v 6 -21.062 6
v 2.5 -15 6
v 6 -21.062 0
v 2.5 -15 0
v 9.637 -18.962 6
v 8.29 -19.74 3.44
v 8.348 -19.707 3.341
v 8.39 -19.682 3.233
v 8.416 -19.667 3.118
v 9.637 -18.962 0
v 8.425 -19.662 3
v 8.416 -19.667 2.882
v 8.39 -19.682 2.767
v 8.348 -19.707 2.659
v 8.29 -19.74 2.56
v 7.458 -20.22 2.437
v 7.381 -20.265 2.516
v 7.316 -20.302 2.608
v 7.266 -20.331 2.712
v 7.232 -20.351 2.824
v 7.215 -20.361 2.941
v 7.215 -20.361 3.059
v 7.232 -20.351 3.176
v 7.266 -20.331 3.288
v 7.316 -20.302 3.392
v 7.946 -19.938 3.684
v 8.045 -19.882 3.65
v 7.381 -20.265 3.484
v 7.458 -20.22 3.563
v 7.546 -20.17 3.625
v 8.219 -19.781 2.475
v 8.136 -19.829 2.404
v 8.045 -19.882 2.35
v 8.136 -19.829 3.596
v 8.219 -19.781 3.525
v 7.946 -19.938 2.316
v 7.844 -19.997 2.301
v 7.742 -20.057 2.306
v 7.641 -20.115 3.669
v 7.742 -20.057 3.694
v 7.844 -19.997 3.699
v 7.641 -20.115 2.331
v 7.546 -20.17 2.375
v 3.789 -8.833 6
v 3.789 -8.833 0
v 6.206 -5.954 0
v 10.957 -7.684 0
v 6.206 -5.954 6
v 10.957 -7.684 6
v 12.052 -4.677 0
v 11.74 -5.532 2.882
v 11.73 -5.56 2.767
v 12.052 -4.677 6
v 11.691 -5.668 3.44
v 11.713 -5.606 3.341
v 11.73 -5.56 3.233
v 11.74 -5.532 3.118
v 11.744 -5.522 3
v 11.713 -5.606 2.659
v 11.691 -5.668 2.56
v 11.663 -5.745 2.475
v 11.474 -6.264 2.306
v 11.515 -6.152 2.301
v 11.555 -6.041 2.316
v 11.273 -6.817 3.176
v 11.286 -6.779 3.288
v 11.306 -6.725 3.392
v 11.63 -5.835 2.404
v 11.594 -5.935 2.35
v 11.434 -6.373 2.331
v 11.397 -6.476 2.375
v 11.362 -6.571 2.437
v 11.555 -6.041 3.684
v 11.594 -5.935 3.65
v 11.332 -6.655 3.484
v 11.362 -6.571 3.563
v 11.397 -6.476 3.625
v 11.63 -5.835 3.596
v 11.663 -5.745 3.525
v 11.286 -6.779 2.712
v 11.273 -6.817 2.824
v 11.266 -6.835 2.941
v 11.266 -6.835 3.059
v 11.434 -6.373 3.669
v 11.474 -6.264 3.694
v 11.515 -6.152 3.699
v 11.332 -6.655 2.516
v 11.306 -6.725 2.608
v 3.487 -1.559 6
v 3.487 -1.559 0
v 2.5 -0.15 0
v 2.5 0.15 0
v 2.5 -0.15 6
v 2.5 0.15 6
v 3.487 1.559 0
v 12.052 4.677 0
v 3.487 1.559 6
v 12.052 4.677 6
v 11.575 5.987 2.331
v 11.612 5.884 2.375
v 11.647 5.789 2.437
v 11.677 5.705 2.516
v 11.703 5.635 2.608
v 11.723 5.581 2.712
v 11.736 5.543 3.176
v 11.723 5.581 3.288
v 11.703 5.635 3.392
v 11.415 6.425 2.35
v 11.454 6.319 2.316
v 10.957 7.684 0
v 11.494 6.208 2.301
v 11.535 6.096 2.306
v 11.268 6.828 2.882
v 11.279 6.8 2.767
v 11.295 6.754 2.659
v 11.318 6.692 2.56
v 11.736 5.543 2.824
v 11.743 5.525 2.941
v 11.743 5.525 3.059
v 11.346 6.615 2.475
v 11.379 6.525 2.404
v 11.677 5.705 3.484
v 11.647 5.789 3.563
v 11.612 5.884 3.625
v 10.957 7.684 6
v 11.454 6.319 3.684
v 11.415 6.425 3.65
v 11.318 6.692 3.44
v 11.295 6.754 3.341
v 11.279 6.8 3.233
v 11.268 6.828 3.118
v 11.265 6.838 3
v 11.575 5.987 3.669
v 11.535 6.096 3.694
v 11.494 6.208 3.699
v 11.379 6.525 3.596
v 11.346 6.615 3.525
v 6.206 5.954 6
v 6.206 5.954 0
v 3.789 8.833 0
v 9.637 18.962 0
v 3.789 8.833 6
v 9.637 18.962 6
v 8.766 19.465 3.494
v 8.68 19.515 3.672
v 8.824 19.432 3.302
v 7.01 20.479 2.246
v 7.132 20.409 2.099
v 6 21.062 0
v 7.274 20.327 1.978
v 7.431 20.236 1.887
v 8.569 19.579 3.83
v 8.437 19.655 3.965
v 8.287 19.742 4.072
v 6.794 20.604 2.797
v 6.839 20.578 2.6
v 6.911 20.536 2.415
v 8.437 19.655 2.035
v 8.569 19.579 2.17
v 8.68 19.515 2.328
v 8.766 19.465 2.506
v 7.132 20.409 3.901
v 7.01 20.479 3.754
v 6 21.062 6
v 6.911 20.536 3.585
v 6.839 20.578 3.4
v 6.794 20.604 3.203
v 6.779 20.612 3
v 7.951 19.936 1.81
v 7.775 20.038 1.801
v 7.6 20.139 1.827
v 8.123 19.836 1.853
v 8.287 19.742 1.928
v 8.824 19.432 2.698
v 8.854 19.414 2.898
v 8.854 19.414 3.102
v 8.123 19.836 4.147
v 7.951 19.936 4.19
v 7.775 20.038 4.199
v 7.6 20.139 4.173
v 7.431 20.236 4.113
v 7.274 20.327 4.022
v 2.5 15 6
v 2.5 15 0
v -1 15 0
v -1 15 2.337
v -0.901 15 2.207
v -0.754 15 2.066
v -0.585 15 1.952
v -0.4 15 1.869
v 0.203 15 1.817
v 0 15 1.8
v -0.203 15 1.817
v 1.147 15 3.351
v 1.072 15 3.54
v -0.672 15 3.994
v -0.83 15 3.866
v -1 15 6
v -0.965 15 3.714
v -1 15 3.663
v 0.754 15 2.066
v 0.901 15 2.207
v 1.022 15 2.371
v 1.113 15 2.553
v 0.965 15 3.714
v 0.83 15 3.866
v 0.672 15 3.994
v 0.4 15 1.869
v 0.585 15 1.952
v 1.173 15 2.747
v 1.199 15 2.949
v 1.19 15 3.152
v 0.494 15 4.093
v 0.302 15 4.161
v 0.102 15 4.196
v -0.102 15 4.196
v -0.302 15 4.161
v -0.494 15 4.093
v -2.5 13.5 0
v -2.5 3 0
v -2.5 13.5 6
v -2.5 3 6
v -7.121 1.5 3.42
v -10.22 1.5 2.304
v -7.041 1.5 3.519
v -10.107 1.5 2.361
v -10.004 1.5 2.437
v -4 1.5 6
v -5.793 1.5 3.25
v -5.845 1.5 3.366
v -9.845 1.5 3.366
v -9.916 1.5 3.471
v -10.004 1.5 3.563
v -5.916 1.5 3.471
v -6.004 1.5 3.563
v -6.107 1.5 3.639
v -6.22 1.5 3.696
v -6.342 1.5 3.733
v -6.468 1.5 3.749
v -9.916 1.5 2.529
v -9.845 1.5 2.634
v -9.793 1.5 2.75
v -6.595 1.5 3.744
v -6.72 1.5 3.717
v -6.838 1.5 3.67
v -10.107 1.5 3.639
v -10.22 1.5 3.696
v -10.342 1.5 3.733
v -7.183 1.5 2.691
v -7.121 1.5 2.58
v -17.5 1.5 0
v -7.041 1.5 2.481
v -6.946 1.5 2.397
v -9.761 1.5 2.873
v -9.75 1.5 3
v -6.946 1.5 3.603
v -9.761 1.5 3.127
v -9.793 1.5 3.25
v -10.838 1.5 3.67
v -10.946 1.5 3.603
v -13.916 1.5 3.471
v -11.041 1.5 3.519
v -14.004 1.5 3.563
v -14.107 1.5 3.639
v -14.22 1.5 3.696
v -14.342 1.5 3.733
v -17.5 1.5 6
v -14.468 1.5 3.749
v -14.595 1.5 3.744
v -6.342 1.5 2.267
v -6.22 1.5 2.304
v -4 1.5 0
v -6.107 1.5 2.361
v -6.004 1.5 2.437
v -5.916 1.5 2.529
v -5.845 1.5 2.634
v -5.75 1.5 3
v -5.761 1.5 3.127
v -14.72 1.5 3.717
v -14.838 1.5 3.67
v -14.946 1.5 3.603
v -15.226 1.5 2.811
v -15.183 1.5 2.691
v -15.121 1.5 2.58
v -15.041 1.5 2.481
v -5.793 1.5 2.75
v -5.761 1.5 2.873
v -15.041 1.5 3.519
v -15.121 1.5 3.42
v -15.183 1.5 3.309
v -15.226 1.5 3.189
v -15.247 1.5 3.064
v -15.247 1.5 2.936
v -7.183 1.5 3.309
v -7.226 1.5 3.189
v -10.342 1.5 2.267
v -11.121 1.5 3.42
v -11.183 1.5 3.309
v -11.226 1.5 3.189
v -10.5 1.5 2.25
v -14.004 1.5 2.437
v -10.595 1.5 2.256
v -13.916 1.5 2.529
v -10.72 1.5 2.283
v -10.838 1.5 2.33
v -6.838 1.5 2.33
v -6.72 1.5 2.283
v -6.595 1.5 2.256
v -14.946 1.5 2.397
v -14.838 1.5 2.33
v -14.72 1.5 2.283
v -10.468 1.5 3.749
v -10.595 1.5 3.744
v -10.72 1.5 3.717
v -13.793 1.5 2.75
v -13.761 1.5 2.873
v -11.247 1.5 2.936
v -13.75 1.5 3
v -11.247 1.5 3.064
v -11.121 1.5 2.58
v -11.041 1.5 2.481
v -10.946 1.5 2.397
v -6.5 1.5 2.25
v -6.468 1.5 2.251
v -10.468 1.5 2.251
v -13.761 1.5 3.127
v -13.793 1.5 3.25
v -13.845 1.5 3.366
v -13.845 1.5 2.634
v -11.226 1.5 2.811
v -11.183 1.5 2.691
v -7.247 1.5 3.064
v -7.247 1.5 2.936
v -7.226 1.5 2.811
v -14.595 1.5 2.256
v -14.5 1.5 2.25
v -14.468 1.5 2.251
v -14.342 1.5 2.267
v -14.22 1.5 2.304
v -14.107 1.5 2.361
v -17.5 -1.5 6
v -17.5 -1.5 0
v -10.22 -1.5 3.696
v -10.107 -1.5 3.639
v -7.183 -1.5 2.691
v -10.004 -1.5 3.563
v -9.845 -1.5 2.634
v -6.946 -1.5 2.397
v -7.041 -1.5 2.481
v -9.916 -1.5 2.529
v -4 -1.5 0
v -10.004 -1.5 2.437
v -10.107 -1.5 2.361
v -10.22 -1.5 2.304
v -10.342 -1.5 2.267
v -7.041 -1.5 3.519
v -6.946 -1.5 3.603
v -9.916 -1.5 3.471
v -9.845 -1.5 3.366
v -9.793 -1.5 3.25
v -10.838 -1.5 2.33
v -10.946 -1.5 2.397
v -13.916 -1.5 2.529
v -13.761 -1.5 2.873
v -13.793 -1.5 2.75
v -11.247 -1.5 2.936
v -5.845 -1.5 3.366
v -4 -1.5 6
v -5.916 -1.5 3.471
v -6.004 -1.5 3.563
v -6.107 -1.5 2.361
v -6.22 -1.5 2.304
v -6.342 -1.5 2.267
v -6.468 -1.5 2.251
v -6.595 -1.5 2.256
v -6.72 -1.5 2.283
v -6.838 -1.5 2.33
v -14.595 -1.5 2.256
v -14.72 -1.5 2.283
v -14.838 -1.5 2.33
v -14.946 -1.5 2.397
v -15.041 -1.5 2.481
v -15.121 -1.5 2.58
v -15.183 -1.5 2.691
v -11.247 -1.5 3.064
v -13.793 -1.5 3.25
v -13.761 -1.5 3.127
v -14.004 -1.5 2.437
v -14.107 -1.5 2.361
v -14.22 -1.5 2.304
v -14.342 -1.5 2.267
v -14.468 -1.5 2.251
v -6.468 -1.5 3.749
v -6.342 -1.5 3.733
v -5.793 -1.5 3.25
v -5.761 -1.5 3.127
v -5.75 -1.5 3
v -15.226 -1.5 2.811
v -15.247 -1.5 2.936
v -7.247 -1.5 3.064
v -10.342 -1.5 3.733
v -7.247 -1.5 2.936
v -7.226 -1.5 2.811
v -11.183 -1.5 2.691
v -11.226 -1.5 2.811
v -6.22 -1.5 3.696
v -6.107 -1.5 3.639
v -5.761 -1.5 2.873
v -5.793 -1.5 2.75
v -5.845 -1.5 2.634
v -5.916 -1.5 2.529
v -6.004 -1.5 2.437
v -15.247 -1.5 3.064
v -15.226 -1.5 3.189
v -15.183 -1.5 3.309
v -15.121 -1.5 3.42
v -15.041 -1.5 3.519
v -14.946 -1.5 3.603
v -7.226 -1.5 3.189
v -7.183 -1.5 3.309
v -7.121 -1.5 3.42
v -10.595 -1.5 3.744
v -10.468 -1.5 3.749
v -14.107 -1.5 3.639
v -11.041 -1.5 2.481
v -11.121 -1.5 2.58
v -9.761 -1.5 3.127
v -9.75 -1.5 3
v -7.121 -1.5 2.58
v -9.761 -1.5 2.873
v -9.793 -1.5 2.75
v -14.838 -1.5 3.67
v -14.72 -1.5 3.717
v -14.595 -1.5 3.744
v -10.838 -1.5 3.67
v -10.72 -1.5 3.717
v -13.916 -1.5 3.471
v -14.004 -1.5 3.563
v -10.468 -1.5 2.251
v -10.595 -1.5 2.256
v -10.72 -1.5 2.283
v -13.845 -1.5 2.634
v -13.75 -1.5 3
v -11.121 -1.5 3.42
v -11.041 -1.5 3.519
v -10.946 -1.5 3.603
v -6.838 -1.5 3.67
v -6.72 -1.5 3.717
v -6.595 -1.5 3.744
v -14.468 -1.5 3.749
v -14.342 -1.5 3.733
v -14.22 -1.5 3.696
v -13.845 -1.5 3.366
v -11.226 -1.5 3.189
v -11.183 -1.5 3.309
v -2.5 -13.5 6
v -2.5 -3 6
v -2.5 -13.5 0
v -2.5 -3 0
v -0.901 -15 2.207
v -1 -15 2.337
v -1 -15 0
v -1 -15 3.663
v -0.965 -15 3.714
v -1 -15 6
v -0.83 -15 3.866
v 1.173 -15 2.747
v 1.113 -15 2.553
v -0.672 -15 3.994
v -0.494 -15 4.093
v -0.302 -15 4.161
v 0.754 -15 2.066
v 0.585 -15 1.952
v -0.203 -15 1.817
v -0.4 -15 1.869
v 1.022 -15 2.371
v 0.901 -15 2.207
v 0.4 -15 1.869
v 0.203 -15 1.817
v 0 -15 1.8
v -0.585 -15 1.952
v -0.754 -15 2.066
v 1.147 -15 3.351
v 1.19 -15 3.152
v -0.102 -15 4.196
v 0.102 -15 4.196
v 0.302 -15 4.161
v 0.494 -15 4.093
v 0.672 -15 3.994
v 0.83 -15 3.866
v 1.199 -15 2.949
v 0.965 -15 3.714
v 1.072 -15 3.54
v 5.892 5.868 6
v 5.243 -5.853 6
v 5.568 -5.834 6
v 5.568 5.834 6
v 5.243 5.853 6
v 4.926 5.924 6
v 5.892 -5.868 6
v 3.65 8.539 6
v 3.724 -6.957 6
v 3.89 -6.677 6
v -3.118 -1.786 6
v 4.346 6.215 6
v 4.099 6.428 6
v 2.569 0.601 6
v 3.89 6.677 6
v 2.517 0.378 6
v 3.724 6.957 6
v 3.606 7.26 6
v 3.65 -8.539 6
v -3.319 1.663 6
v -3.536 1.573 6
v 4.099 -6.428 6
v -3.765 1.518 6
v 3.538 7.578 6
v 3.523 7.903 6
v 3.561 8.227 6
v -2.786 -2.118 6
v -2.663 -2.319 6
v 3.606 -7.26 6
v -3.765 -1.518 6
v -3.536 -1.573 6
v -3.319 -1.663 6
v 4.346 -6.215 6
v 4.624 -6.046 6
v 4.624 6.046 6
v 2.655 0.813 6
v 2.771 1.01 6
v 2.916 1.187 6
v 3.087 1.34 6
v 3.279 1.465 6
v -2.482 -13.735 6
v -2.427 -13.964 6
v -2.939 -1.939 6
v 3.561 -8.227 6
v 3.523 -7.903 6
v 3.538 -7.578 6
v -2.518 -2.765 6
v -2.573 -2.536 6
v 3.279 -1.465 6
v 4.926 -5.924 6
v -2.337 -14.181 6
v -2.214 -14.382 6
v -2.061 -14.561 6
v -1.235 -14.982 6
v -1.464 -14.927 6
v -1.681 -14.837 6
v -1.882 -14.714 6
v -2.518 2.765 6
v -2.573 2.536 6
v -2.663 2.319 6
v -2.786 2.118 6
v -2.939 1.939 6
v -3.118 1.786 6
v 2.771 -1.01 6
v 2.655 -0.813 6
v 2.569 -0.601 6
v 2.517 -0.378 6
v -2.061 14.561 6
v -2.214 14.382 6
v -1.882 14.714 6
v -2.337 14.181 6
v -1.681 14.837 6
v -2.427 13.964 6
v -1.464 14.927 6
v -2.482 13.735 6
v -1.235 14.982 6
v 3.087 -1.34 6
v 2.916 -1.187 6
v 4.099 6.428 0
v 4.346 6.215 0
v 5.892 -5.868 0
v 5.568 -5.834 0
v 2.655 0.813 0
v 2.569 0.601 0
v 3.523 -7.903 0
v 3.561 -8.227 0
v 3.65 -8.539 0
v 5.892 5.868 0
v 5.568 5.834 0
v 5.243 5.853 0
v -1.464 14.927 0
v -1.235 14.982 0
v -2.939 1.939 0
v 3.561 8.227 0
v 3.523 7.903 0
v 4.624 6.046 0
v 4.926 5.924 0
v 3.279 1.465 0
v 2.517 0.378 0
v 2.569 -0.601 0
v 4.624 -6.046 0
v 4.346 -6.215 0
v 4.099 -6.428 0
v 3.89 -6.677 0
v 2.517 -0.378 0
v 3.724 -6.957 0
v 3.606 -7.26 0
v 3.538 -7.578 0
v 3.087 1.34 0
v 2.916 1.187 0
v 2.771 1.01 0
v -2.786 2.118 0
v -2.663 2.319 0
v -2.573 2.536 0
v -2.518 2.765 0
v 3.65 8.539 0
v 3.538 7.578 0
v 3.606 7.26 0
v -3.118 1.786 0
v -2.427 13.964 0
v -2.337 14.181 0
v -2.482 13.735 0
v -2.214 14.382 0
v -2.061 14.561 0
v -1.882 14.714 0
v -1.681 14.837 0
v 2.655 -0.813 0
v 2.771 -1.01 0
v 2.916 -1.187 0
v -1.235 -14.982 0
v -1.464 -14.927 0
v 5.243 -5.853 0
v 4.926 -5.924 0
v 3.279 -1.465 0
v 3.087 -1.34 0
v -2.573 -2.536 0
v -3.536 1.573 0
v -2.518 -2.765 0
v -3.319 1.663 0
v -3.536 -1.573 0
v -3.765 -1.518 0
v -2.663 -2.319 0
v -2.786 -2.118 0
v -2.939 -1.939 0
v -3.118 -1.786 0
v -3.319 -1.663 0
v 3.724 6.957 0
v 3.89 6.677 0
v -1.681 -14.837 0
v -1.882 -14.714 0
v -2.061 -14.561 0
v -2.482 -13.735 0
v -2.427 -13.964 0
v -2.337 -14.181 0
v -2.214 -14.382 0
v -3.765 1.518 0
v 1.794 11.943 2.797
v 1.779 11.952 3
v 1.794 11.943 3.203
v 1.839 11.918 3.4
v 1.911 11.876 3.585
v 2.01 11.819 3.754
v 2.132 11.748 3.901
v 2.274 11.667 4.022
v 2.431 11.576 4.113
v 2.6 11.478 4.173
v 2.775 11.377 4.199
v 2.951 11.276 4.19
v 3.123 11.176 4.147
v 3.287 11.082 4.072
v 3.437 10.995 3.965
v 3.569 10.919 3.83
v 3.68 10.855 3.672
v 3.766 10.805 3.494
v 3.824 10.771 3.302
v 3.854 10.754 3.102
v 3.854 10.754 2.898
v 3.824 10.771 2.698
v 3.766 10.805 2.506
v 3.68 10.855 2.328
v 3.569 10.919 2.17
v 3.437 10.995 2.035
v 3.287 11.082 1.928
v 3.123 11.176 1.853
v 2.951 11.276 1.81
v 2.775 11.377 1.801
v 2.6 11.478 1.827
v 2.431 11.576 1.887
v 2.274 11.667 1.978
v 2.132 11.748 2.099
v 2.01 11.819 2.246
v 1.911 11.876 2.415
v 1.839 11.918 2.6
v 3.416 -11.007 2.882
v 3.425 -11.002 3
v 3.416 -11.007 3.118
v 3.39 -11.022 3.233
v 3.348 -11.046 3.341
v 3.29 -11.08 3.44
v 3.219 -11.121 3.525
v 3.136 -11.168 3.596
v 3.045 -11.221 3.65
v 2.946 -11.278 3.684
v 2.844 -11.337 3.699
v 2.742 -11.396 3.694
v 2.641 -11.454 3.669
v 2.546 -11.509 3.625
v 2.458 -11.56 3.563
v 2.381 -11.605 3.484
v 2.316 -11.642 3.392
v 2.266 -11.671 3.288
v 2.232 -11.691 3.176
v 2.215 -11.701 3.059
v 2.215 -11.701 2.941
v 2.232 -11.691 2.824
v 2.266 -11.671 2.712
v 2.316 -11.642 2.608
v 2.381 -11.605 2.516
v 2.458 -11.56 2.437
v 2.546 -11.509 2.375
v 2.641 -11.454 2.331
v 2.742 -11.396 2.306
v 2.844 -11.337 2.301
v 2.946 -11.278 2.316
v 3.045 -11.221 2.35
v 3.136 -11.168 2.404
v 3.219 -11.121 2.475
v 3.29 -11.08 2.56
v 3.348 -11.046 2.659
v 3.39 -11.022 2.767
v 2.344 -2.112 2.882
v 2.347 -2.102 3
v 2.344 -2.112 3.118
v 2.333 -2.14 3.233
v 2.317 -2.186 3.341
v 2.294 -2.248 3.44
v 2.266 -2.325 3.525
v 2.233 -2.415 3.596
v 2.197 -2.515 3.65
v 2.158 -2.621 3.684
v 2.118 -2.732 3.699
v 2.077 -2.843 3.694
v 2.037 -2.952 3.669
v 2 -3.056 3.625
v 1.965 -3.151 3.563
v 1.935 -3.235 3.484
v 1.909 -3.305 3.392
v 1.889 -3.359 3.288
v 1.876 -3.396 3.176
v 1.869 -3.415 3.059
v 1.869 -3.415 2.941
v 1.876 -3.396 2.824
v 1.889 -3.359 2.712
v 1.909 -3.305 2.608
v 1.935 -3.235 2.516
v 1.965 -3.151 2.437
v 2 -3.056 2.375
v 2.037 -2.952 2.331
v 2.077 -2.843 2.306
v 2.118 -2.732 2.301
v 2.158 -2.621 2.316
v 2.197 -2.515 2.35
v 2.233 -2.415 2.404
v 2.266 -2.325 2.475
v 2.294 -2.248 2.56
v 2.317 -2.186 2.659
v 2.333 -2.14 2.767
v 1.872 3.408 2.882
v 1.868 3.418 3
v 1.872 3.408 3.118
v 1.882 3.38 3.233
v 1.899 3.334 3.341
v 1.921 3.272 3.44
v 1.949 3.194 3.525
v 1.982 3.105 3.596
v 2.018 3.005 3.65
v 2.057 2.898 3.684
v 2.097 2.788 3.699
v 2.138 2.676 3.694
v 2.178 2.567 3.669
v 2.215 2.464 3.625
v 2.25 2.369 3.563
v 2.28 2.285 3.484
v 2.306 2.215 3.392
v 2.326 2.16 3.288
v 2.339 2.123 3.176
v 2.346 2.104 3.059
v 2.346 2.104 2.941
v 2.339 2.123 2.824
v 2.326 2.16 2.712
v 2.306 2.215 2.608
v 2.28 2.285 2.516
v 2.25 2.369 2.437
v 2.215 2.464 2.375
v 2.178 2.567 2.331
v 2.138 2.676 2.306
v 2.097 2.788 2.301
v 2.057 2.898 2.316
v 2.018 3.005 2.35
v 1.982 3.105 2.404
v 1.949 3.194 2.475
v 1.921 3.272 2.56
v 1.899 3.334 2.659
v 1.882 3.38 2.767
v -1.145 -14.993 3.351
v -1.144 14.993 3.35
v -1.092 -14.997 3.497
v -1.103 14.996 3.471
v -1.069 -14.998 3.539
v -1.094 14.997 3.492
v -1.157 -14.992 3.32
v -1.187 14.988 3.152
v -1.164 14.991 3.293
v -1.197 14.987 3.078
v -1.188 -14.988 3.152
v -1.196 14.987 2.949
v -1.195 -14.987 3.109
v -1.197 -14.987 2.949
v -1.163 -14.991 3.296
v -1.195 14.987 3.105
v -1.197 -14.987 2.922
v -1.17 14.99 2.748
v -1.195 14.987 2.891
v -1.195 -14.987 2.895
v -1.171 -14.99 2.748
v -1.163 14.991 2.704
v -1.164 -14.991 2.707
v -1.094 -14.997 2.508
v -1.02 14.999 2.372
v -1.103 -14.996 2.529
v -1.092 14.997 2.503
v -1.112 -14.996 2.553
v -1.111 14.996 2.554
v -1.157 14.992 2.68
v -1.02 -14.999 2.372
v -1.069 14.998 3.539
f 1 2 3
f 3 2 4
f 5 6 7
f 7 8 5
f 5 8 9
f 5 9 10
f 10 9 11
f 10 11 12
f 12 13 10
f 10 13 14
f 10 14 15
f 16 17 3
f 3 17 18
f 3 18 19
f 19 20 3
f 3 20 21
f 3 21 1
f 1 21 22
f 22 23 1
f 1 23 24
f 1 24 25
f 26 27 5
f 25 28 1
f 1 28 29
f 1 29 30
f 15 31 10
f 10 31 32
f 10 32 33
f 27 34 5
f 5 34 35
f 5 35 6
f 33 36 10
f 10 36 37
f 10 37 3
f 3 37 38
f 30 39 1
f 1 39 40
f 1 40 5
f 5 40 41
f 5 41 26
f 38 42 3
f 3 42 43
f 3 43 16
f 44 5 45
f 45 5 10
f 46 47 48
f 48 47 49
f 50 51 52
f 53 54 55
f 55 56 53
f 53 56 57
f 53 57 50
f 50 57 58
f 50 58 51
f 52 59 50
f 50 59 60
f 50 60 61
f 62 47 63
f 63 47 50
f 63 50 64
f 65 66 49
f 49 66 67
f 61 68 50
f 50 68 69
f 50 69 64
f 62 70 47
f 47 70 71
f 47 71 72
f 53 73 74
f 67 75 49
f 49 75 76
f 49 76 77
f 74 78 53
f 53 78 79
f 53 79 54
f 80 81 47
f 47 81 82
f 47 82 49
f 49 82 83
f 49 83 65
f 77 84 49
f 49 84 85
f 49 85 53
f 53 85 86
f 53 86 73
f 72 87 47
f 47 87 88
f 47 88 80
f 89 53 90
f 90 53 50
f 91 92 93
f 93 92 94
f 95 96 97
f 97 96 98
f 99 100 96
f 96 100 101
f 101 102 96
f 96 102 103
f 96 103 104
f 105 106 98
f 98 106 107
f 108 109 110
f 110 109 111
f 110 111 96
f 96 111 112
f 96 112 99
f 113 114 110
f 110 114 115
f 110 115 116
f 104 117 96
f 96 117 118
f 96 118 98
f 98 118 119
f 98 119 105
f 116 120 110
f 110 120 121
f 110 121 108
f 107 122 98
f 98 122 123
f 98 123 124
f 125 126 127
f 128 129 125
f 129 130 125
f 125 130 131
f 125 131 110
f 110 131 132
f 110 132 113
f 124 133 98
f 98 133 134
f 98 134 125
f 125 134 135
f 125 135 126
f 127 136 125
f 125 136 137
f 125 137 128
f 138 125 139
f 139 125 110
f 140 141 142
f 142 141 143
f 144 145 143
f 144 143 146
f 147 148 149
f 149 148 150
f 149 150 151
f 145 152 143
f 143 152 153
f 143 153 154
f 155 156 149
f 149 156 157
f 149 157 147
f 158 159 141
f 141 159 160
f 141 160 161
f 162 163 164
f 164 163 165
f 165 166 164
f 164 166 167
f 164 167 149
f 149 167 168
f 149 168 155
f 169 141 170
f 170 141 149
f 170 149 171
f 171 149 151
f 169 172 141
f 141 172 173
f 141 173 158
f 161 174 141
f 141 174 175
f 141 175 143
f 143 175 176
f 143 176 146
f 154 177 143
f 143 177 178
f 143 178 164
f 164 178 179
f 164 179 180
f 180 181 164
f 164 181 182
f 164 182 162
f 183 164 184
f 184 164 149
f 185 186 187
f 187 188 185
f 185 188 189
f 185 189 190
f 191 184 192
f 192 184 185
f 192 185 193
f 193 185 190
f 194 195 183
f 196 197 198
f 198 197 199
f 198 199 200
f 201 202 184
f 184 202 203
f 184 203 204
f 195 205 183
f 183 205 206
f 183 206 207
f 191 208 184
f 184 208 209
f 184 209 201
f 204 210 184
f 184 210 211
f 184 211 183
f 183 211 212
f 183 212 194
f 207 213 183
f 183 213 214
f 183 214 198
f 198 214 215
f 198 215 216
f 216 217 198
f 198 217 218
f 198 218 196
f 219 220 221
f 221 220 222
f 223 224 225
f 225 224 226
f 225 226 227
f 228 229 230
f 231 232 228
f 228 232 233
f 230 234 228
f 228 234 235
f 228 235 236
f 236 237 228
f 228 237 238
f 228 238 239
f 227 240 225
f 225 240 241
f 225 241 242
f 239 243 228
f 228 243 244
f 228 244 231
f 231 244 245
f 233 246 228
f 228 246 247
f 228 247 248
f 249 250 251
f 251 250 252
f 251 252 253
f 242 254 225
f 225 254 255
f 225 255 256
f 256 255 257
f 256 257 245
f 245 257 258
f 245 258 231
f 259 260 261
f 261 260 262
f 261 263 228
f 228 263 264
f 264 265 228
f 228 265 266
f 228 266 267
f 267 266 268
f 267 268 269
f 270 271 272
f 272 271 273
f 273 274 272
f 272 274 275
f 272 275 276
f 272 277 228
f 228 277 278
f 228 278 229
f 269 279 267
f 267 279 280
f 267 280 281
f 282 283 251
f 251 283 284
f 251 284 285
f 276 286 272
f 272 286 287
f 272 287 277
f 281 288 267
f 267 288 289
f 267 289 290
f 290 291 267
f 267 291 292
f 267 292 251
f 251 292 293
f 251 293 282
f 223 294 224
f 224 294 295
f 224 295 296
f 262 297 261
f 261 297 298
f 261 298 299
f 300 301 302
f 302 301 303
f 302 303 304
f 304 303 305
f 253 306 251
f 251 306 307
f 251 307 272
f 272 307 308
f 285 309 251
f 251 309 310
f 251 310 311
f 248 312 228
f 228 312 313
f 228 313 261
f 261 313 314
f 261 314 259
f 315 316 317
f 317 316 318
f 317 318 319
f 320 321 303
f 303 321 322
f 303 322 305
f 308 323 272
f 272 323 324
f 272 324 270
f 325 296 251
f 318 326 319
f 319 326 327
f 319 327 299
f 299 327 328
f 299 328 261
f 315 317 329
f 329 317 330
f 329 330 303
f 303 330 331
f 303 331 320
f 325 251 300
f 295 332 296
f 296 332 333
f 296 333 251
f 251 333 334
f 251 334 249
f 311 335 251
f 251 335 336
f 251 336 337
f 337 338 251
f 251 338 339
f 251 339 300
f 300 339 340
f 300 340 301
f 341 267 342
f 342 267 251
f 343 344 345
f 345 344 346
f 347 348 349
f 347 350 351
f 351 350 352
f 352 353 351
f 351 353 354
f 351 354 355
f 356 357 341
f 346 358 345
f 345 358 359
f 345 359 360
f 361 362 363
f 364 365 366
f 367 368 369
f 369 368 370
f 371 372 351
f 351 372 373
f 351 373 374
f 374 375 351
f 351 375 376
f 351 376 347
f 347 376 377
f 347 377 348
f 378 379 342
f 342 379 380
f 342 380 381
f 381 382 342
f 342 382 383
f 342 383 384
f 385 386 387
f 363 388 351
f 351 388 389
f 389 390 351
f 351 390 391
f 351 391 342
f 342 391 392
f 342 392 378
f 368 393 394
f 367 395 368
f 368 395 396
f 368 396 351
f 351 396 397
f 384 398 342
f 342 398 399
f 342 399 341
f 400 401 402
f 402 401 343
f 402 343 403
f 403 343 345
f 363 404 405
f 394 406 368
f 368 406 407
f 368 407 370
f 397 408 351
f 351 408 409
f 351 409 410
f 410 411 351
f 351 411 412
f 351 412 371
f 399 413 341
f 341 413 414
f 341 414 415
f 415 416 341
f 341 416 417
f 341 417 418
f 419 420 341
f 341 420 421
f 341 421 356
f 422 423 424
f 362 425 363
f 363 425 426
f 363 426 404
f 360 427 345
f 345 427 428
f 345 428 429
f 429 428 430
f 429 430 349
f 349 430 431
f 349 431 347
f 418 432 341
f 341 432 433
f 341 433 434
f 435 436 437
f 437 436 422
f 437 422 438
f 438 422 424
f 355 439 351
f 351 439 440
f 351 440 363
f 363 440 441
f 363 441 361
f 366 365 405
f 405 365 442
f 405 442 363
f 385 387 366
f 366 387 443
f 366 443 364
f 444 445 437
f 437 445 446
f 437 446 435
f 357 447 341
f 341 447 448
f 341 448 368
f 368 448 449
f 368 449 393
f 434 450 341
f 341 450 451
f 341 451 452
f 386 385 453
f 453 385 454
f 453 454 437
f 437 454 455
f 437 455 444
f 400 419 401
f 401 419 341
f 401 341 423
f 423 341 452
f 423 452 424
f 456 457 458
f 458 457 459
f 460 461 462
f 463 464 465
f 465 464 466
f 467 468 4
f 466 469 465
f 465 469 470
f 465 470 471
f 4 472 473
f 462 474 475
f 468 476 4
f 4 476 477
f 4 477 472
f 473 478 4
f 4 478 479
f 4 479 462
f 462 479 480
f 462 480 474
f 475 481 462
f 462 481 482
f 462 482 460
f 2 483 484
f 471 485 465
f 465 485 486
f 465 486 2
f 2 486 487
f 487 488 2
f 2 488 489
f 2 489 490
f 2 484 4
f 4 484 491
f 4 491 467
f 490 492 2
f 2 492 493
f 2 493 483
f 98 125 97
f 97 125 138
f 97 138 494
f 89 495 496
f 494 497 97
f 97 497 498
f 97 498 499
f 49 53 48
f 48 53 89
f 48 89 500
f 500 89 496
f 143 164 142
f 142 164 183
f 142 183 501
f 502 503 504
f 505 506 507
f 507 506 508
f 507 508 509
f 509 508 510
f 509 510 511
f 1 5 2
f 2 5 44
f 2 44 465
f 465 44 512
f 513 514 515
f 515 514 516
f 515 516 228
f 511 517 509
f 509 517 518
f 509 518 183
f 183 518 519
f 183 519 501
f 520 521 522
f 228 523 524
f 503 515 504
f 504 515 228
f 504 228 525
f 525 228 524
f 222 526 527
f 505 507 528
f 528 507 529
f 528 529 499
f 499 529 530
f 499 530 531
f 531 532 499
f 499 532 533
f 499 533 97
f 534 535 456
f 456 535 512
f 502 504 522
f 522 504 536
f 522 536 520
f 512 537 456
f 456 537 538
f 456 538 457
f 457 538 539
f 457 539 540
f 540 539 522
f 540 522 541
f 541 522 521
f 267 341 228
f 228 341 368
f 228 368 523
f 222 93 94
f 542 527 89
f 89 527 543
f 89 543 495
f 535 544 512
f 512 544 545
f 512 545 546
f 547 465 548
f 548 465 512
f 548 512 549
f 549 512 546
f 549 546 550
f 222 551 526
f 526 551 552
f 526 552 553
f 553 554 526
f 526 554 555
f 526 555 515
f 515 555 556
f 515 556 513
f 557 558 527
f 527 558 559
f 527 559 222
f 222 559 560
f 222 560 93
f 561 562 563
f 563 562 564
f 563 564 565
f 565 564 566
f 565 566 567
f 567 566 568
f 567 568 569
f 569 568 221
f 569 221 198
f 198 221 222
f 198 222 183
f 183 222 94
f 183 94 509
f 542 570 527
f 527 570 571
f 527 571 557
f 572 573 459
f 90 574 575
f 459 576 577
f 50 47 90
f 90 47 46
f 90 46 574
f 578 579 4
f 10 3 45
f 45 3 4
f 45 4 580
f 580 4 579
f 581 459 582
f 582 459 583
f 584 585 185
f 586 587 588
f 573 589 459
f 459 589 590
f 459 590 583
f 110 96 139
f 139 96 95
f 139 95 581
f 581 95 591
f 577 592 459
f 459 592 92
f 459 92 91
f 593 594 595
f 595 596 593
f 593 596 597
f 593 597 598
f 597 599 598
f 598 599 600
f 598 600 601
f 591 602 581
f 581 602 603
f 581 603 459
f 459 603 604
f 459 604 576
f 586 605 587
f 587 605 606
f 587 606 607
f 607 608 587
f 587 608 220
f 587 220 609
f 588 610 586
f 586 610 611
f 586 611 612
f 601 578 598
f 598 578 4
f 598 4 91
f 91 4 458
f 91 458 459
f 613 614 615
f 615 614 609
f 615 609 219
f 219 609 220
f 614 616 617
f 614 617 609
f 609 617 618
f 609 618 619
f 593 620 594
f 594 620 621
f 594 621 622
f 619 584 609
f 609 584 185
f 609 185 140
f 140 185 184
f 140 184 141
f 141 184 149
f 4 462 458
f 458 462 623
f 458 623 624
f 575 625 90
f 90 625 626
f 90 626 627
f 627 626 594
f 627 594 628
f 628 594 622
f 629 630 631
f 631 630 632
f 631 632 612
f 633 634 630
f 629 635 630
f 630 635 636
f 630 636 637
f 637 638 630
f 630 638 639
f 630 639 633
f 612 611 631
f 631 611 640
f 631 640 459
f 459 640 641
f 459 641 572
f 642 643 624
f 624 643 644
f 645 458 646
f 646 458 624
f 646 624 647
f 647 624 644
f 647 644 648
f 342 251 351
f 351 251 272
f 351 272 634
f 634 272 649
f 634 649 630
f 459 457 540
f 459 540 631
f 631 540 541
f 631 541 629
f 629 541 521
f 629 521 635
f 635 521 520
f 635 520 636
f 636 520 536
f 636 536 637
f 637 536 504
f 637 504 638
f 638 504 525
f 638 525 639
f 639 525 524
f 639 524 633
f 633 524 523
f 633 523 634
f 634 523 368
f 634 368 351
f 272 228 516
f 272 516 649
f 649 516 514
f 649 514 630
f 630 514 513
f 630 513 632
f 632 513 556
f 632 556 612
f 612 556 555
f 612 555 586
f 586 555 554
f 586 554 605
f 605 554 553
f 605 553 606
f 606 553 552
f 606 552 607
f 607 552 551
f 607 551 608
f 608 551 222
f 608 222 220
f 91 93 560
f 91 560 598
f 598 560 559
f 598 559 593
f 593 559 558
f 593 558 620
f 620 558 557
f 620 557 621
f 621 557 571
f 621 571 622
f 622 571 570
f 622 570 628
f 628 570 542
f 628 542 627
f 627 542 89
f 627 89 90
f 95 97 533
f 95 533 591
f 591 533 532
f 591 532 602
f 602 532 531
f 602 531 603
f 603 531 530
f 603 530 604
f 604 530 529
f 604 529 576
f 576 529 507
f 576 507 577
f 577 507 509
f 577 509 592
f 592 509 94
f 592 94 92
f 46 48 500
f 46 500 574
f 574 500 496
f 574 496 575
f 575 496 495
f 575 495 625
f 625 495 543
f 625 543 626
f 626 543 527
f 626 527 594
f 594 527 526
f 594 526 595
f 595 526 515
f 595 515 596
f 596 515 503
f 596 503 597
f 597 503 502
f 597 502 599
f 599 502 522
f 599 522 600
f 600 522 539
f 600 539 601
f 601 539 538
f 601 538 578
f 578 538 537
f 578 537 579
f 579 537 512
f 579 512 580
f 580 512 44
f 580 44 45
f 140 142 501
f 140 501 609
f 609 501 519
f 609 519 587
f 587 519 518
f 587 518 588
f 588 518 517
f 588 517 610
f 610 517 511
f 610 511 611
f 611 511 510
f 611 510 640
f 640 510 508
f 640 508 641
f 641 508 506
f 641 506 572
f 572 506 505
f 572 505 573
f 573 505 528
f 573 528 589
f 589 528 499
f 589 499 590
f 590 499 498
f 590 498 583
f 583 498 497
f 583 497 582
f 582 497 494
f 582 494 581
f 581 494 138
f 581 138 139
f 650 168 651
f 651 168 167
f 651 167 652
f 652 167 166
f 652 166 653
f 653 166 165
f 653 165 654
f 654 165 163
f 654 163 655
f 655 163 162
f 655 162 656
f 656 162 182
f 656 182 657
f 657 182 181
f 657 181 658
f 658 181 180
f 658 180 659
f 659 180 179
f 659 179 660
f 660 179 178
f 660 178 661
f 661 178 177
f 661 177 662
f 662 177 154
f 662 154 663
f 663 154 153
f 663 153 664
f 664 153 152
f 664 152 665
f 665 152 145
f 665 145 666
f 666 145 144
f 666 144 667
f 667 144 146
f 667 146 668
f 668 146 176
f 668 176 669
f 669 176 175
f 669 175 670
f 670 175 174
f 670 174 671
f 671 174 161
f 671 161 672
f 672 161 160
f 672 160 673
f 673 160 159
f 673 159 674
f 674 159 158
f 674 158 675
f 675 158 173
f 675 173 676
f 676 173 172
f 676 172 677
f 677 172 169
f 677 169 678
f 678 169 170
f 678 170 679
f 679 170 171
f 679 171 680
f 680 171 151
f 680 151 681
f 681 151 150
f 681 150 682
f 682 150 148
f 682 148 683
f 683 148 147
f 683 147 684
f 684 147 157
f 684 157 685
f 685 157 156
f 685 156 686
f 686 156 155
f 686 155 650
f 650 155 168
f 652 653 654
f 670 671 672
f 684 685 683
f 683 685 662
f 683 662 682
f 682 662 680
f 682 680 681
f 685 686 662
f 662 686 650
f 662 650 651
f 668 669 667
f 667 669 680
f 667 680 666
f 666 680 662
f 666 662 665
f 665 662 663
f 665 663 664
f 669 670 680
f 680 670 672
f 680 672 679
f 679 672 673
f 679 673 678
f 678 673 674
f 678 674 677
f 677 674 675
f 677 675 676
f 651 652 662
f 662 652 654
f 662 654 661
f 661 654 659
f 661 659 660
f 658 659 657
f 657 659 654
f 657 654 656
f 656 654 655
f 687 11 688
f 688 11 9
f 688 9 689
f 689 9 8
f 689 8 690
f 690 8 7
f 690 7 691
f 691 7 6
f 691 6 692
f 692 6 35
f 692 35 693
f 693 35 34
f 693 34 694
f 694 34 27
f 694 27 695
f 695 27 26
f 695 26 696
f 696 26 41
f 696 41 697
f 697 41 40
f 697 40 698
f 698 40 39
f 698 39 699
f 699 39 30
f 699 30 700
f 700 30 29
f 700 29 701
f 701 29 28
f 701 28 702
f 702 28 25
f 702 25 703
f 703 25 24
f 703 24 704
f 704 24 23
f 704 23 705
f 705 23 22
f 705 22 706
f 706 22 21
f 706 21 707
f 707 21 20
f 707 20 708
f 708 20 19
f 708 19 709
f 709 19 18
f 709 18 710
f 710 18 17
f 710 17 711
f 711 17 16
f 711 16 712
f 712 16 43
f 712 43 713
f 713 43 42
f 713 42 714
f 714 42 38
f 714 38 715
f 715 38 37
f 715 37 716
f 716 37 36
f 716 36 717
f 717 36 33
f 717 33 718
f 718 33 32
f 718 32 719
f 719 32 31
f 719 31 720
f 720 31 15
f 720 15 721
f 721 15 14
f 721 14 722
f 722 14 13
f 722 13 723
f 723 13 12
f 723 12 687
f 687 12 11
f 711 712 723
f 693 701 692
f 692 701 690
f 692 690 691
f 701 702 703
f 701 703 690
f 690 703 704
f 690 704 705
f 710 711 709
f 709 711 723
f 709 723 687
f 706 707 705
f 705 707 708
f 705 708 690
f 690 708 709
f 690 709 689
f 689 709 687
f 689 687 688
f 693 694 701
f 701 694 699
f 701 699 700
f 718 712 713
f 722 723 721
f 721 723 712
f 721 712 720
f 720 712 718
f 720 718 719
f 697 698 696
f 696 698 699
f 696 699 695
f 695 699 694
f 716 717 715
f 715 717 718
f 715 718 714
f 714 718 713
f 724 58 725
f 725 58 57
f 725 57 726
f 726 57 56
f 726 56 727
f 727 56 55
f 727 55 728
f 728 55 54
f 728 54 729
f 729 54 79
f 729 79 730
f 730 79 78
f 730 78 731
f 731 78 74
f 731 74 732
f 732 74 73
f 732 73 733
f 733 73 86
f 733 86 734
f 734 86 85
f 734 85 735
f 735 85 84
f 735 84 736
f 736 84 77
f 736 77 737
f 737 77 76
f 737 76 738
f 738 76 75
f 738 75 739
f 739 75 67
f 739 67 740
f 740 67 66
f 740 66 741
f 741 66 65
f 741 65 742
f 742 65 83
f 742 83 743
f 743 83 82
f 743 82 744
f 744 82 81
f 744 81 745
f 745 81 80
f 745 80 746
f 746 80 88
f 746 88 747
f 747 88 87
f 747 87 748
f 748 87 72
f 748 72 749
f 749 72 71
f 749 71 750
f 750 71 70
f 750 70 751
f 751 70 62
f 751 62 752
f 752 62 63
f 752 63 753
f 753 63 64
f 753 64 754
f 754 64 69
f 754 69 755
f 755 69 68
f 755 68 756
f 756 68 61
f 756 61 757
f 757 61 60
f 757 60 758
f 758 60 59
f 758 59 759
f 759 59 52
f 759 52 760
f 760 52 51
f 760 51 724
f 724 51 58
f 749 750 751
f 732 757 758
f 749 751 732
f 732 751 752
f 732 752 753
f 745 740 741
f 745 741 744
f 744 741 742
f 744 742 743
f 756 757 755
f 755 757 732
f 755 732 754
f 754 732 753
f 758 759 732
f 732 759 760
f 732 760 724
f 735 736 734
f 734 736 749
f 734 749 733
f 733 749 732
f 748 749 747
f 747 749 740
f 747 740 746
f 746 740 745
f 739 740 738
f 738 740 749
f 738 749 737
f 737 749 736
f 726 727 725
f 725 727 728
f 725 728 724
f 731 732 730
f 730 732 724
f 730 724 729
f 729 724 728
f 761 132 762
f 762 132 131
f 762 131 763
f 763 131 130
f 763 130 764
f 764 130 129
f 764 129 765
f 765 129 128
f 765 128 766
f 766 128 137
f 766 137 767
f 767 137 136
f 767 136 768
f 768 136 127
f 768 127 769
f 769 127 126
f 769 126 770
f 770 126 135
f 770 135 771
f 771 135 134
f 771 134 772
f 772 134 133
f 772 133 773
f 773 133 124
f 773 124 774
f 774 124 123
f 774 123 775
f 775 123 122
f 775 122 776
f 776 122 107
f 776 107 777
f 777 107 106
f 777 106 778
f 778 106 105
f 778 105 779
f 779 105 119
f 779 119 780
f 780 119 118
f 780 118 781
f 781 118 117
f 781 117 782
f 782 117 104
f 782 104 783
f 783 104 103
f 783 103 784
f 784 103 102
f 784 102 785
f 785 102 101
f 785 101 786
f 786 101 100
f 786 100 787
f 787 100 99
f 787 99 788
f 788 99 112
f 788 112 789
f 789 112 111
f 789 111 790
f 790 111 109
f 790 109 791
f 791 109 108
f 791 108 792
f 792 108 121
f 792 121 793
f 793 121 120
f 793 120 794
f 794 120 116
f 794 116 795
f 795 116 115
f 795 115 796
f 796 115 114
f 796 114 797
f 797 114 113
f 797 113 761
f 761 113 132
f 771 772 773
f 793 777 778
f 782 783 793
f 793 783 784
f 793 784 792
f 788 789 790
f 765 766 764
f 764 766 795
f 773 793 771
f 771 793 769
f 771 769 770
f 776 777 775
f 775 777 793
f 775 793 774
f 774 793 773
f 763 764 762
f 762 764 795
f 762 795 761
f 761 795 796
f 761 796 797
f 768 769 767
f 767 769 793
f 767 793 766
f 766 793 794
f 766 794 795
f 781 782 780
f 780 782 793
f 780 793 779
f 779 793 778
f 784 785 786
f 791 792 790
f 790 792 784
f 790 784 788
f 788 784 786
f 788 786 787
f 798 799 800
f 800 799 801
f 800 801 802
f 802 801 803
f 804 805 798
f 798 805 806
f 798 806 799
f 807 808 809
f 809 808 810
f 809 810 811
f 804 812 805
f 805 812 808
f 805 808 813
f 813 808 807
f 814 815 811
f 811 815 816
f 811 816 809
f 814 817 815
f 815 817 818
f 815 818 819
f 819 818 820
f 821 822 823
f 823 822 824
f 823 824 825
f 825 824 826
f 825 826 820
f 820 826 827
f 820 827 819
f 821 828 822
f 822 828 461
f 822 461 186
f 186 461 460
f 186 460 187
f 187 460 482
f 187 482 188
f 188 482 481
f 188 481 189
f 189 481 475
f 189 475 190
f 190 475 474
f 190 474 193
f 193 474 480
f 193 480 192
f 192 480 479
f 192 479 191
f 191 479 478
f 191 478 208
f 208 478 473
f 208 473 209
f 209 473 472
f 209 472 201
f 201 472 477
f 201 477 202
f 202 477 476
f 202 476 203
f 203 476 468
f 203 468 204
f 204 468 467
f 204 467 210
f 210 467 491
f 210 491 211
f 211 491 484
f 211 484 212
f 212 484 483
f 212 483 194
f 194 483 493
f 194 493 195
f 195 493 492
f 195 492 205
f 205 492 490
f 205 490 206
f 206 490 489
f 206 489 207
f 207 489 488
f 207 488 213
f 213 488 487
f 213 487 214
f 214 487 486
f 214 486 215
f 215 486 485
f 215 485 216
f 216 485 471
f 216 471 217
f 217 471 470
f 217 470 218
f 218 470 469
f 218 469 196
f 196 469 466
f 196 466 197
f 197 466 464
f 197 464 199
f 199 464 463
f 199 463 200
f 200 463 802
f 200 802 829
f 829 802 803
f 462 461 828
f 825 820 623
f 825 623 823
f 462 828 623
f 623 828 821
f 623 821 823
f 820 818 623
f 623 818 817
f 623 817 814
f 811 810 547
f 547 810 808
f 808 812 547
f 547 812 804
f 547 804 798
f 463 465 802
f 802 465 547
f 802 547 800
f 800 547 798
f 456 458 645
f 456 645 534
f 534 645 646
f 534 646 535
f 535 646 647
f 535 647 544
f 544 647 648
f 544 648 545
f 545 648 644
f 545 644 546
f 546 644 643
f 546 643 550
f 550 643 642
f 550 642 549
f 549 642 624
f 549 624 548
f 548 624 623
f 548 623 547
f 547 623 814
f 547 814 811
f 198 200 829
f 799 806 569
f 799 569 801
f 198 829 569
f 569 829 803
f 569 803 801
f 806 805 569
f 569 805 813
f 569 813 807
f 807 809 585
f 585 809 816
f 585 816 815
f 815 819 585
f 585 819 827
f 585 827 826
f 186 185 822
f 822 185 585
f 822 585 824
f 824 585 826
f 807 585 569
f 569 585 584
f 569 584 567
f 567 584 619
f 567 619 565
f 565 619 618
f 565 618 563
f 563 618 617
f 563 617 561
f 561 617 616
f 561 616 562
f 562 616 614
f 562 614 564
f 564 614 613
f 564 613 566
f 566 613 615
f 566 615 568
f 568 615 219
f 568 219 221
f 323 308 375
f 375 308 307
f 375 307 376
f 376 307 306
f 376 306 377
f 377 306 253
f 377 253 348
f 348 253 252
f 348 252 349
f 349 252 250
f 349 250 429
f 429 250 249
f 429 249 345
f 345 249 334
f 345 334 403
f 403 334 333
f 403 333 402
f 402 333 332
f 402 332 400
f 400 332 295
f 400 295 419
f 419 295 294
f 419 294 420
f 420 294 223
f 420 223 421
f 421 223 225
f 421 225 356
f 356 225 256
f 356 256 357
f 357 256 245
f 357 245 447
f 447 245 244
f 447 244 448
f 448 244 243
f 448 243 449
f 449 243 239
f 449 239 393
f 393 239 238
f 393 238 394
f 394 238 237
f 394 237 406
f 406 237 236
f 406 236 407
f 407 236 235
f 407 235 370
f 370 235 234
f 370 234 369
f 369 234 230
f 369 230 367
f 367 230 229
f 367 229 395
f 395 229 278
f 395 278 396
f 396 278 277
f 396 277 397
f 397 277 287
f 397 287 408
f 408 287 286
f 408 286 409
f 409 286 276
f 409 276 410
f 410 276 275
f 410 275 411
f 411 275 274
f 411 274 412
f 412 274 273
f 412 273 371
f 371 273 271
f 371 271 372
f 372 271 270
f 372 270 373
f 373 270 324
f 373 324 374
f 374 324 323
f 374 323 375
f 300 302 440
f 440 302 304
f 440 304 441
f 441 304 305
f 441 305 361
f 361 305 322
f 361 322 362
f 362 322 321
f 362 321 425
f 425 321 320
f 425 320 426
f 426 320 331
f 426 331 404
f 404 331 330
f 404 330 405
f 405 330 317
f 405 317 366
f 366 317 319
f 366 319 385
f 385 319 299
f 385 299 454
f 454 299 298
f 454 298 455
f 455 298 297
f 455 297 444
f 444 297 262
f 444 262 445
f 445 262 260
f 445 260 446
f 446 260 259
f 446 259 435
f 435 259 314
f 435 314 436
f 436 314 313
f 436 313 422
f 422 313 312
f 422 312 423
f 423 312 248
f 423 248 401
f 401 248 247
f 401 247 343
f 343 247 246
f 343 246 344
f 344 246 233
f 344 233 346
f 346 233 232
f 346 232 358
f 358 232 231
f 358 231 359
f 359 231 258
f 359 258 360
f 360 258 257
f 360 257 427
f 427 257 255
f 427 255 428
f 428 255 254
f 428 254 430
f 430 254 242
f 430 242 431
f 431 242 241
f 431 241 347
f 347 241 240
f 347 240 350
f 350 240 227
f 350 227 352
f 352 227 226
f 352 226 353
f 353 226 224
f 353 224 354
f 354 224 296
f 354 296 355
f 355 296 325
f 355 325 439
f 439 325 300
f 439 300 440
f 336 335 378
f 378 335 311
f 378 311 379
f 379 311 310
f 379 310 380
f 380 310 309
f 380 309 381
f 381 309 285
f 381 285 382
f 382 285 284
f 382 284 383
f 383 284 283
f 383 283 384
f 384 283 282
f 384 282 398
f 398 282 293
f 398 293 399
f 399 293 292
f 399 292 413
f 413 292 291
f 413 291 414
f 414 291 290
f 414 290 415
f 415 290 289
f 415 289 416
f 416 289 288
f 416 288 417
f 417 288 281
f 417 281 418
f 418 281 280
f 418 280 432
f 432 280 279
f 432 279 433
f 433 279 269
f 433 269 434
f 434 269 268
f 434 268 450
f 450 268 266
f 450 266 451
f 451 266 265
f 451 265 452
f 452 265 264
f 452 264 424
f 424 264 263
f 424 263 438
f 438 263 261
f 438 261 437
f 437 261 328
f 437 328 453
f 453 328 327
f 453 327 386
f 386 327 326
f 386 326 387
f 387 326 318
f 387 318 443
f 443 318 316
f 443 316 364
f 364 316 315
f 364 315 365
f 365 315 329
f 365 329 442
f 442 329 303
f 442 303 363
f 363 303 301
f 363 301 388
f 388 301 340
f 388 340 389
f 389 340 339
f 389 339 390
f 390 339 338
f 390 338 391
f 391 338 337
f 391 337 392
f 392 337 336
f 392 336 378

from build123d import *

# Parameters (mm, degrees)
EXTRUDE_1_DEPTH      = 6
FILLET_4_R           = 1.5
FILLET_5_R           = 2
SKETCH_7_R           = 1.2
CUT_EXTRUDE_6_DEPTH  = 10
SKETCH_8_R           = 0.7
CUT_EXTRUDE_7_DEPTH  = 10
SKETCH_9_R           = 0.7
CUT_EXTRUDE_8_DEPTH  = 10
SKETCH_10_R          = 0.7
CUT_EXTRUDE_9_DEPTH  = 10
CUT_EXTRUDE_10_REACH = 42.531
SKETCH_11_R          = 1.2
FILLET_6_R           = 1.5
CUT_EXTRUDE_11_REACH = 31.177
SKETCH_12_R          = 0.75


with BuildPart() as part:
    # 草圖1 → 填料-伸長1 (new body)
    with BuildSketch(Plane.XY):
        Polygon((-2.5, 15), (2.5, 15), (6, 21.062177826), (9.637306696, 18.962177826), (2.5, 6.6), (2.5, 4.605368872), (10.957233587, 7.683550162), (12.051698046, 4.676533775), (2.5, 1.2), (2.5, -1.2), (12.051698046, -4.676533775), (10.957233587, -7.683550162), (2.5, -4.605368872), (2.5, -6.6), (9.637306696, -18.962177826), (6, -21.062177826), (2.5, -15), (-2.5, -15), (-2.5, -1.5), (-17.5, -1.5), (-17.5, 1.5), (-2.5, 1.5), align=None)
    extrude(amount=EXTRUDE_1_DEPTH)

    # 圓角4
    # the kernel refuses this fillet: 1.5 mm, written as the material it adds along each edge
    with BuildSketch(Plane(origin=(-2.5, -1.5, 0), x_dir=(0, -1, 0), z_dir=(0, 0, 1)), Plane(origin=(-2.5, 1.5, 0), x_dir=(-1, 0, 0), z_dir=(0, 0, 1))) as fillet_4_piece_1:
        with BuildLine():
            CenterArc((FILLET_4_R, -FILLET_4_R), FILLET_4_R, 90, 90)
            Line((0, -FILLET_4_R), (-FILLET_4_R * 0.02, -FILLET_4_R))
            Line((-FILLET_4_R * 0.02, -FILLET_4_R), (-FILLET_4_R * 0.02, FILLET_4_R * 0.02))
            Line((-FILLET_4_R * 0.02, FILLET_4_R * 0.02), (FILLET_4_R, FILLET_4_R * 0.02))
            Line((FILLET_4_R, FILLET_4_R * 0.02), (FILLET_4_R, 0))
        make_face()
    extrude(amount=6)
    with BuildSketch(Plane(origin=(2.5, 4.605368872, 0), x_dir=(0, 1, 0), z_dir=(0, 0, 1))) as fillet_4_piece_2:
        with BuildLine():
            CenterArc((2.139664035, -1.492972021), FILLET_4_R, 95.548517206, 104.451482794)
            Line((0.730125104, -2.006002236), (0.701934325, -2.01626284))
            Line((0.701934325, -2.01626284), (-0.028190779, -0.010260604))
            Line((-0.028190779, -0.010260604), (0, 0.03))
            ThreePointArc((0, 0.03), (0.997315564, 0.03), (1.99173047, 0.02985944))
            Line((1.99173047, 0.02985944), (1.994631128, 0))
        make_face()
    extrude(amount=6)
    with BuildSketch(Plane(origin=(2.5, 1.2, 0), x_dir=(0.9396926207859073, 0.34202014332567154, 0), z_dir=(0, 0, 1)), Plane(origin=(2.5, -1.2, 0), x_dir=(0, 1, 0), z_dir=(0, 0, 1))) as fillet_4_piece_3:
        with BuildLine():
            CenterArc((FILLET_4_R * 0.70020753821, -FILLET_4_R), FILLET_4_R, 90, 70)
            Line((-FILLET_4_R * 0.239485082576, -FILLET_4_R * 0.657979856674), (-FILLET_4_R * 0.258278934992, -FILLET_4_R * 0.651139453808))
            Line((-FILLET_4_R * 0.258278934992, -FILLET_4_R * 0.651139453808), (-FILLET_4_R * 0.0140041507642, FILLET_4_R * 0.02))
            Line((-FILLET_4_R * 0.0140041507642, FILLET_4_R * 0.02), (FILLET_4_R * 0.70020753821, FILLET_4_R * 0.02))
            Line((FILLET_4_R * 0.70020753821, FILLET_4_R * 0.02), (FILLET_4_R * 0.70020753821, 0))
        make_face()
    extrude(amount=6)
    with BuildSketch(Plane(origin=(2.5, -4.605368872, 0), x_dir=(0.9396926207859109, -0.34202014332566216, 0), z_dir=(0, 0, 1))) as fillet_4_piece_4:
        with BuildLine():
            CenterArc((2.134742991, -1.5), FILLET_4_R, 90, 104.451482794)
            Line((0.682204024, -1.874340152), (0.653153245, -1.881826955))
            ThreePointArc((0.653153245, -1.881826955), (0.312911234, -0.94743068), (-0.028190779, -0.010260604))
            Line((-0.028190779, -0.010260604), (0, 0.03))
            Line((0, 0.03), (2.134742991, 0.03))
            Line((2.134742991, 0.03), (2.134742991, 0))
        make_face()
    extrude(amount=6)

    # 圓角5
    fillet_5_edges = [part.edges().sort_by_distance(p)[0] for p in [
        (2.5, -6.6, 3),
        (2.5, 6.6, 3),
    ]]
    fillet(fillet_5_edges, radius=FILLET_5_R)

    # 草圖7 → 除料-伸長6 (cut)
    with BuildSketch(Plane(origin=(10.620190528, 18.394709581, 0), x_dir=(0.8660254037844364, -0.5000000000000041, 0), z_dir=(0.5000000000000041, 0.8660254037844364, 0))):
        with Locations(Location((-3.234936491, -3, 0), (0, 0, 180))):
            Circle(SKETCH_7_R)
    extrude(amount=-CUT_EXTRUDE_6_DEPTH, mode=Mode.SUBTRACT)

    # 草圖8 → 除料-伸長7 (cut)
    with BuildSketch(Plane(origin=(10.620190528, -18.394709581, 0), x_dir=(0.8660254037844356, 0.5000000000000054, 0), z_dir=(0.5000000000000054, -0.8660254037844356, 0))):
        with Locations((-3.234936491, 3)):
            Circle(SKETCH_8_R)
    extrude(amount=-CUT_EXTRUDE_7_DEPTH, mode=Mode.SUBTRACT)

    # 草圖9 → 除料-伸長8 (cut)
    with BuildSketch(Plane(origin=(12.144926165, -4.420391622, 0), x_dir=(0, 0, -1), z_dir=(0.9396926207859106, -0.3420201433256625, 0))):
        with Locations(Location((-3, -1.872580787, 0), (0, 0, 90))):
            Circle(SKETCH_9_R)
    extrude(amount=-CUT_EXTRUDE_8_DEPTH, mode=Mode.SUBTRACT)

    # 草圖10 → 除料-伸長9 (cut)
    with BuildSketch(Plane(origin=(12.144926165, 4.420391622, 0), x_dir=(0, 0, -1), z_dir=(0.9396926207859082, 0.3420201433256692, 0))):
        with Locations(Location((-3, 1.872580787, 0), (0, 0, 90))):
            Circle(SKETCH_10_R)
    extrude(amount=-CUT_EXTRUDE_9_DEPTH, mode=Mode.SUBTRACT)

    # 草圖11 → 除料-伸長10 (cut, up to next)
    with BuildSketch(Plane.XZ.offset(15), mode=Mode.PRIVATE) as cut_extrude_10_sk1:
        with Locations(Location((0, 3, 0), (0, 0, 270))):
            Circle(SKETCH_11_R)
    cut_extrude_10_tool1 = extrude(cut_extrude_10_sk1.sketch, amount=-CUT_EXTRUDE_10_REACH, mode=Mode.PRIVATE) & part.part
    add(cut_extrude_10_tool1.solids().sort_by_distance((0, -15, 3))[0], mode=Mode.SUBTRACT)

    # 圓角6
    # the kernel refuses this fillet: 1.5 mm, written as the material it takes off along each edge
    with BuildSketch(Plane(origin=(-2.5, -15, -3.75), x_dir=(1, 0, 0), z_dir=(0, 0, 1)), Plane(origin=(-2.5, 15, -3.75), x_dir=(0, -1, 0), z_dir=(0, 0, 1))) as fillet_6_piece_1:
        with BuildLine():
            CenterArc((FILLET_6_R, FILLET_6_R), FILLET_6_R, 180, 90)
            Line((0, FILLET_6_R), (0, 0))
            Line((0, 0), (FILLET_6_R, 0))
        make_face()
    extrude(amount=13.5, mode=Mode.SUBTRACT)

    # 草圖12 → 除料-伸長11 (cut, up to next)
    with BuildSketch(Plane.XZ.offset(1.5), mode=Mode.PRIVATE) as cut_extrude_11_sk1:
        with Locations((-6.5, 3)):
            Circle(SKETCH_12_R)
    cut_extrude_11_tool1 = extrude(cut_extrude_11_sk1.sketch, amount=-CUT_EXTRUDE_11_REACH, mode=Mode.PRIVATE) & part.part
    # 草圖12 → 除料-伸長11 (cut, up to next)
    with BuildSketch(Plane.XZ.offset(1.5), mode=Mode.PRIVATE) as cut_extrude_11_sk2:
        with Locations((-10.5, 3)):
            Circle(SKETCH_12_R)
    cut_extrude_11_tool2 = extrude(cut_extrude_11_sk2.sketch, amount=-CUT_EXTRUDE_11_REACH, mode=Mode.PRIVATE) & part.part
    # 草圖12 → 除料-伸長11 (cut, up to next)
    with BuildSketch(Plane.XZ.offset(1.5), mode=Mode.PRIVATE) as cut_extrude_11_sk3:
        with Locations((-14.5, 3)):
            Circle(SKETCH_12_R)
    cut_extrude_11_tool3 = extrude(cut_extrude_11_sk3.sketch, amount=-CUT_EXTRUDE_11_REACH, mode=Mode.PRIVATE) & part.part
    add(cut_extrude_11_tool1.solids().sort_by_distance((-6.5, -1.5, 3))[0], mode=Mode.SUBTRACT)
    add(cut_extrude_11_tool2.solids().sort_by_distance((-10.5, -1.5, 3))[0], mode=Mode.SUBTRACT)
    add(cut_extrude_11_tool3.solids().sort_by_distance((-14.5, -1.5, 3))[0], mode=Mode.SUBTRACT)


solid = part.part
